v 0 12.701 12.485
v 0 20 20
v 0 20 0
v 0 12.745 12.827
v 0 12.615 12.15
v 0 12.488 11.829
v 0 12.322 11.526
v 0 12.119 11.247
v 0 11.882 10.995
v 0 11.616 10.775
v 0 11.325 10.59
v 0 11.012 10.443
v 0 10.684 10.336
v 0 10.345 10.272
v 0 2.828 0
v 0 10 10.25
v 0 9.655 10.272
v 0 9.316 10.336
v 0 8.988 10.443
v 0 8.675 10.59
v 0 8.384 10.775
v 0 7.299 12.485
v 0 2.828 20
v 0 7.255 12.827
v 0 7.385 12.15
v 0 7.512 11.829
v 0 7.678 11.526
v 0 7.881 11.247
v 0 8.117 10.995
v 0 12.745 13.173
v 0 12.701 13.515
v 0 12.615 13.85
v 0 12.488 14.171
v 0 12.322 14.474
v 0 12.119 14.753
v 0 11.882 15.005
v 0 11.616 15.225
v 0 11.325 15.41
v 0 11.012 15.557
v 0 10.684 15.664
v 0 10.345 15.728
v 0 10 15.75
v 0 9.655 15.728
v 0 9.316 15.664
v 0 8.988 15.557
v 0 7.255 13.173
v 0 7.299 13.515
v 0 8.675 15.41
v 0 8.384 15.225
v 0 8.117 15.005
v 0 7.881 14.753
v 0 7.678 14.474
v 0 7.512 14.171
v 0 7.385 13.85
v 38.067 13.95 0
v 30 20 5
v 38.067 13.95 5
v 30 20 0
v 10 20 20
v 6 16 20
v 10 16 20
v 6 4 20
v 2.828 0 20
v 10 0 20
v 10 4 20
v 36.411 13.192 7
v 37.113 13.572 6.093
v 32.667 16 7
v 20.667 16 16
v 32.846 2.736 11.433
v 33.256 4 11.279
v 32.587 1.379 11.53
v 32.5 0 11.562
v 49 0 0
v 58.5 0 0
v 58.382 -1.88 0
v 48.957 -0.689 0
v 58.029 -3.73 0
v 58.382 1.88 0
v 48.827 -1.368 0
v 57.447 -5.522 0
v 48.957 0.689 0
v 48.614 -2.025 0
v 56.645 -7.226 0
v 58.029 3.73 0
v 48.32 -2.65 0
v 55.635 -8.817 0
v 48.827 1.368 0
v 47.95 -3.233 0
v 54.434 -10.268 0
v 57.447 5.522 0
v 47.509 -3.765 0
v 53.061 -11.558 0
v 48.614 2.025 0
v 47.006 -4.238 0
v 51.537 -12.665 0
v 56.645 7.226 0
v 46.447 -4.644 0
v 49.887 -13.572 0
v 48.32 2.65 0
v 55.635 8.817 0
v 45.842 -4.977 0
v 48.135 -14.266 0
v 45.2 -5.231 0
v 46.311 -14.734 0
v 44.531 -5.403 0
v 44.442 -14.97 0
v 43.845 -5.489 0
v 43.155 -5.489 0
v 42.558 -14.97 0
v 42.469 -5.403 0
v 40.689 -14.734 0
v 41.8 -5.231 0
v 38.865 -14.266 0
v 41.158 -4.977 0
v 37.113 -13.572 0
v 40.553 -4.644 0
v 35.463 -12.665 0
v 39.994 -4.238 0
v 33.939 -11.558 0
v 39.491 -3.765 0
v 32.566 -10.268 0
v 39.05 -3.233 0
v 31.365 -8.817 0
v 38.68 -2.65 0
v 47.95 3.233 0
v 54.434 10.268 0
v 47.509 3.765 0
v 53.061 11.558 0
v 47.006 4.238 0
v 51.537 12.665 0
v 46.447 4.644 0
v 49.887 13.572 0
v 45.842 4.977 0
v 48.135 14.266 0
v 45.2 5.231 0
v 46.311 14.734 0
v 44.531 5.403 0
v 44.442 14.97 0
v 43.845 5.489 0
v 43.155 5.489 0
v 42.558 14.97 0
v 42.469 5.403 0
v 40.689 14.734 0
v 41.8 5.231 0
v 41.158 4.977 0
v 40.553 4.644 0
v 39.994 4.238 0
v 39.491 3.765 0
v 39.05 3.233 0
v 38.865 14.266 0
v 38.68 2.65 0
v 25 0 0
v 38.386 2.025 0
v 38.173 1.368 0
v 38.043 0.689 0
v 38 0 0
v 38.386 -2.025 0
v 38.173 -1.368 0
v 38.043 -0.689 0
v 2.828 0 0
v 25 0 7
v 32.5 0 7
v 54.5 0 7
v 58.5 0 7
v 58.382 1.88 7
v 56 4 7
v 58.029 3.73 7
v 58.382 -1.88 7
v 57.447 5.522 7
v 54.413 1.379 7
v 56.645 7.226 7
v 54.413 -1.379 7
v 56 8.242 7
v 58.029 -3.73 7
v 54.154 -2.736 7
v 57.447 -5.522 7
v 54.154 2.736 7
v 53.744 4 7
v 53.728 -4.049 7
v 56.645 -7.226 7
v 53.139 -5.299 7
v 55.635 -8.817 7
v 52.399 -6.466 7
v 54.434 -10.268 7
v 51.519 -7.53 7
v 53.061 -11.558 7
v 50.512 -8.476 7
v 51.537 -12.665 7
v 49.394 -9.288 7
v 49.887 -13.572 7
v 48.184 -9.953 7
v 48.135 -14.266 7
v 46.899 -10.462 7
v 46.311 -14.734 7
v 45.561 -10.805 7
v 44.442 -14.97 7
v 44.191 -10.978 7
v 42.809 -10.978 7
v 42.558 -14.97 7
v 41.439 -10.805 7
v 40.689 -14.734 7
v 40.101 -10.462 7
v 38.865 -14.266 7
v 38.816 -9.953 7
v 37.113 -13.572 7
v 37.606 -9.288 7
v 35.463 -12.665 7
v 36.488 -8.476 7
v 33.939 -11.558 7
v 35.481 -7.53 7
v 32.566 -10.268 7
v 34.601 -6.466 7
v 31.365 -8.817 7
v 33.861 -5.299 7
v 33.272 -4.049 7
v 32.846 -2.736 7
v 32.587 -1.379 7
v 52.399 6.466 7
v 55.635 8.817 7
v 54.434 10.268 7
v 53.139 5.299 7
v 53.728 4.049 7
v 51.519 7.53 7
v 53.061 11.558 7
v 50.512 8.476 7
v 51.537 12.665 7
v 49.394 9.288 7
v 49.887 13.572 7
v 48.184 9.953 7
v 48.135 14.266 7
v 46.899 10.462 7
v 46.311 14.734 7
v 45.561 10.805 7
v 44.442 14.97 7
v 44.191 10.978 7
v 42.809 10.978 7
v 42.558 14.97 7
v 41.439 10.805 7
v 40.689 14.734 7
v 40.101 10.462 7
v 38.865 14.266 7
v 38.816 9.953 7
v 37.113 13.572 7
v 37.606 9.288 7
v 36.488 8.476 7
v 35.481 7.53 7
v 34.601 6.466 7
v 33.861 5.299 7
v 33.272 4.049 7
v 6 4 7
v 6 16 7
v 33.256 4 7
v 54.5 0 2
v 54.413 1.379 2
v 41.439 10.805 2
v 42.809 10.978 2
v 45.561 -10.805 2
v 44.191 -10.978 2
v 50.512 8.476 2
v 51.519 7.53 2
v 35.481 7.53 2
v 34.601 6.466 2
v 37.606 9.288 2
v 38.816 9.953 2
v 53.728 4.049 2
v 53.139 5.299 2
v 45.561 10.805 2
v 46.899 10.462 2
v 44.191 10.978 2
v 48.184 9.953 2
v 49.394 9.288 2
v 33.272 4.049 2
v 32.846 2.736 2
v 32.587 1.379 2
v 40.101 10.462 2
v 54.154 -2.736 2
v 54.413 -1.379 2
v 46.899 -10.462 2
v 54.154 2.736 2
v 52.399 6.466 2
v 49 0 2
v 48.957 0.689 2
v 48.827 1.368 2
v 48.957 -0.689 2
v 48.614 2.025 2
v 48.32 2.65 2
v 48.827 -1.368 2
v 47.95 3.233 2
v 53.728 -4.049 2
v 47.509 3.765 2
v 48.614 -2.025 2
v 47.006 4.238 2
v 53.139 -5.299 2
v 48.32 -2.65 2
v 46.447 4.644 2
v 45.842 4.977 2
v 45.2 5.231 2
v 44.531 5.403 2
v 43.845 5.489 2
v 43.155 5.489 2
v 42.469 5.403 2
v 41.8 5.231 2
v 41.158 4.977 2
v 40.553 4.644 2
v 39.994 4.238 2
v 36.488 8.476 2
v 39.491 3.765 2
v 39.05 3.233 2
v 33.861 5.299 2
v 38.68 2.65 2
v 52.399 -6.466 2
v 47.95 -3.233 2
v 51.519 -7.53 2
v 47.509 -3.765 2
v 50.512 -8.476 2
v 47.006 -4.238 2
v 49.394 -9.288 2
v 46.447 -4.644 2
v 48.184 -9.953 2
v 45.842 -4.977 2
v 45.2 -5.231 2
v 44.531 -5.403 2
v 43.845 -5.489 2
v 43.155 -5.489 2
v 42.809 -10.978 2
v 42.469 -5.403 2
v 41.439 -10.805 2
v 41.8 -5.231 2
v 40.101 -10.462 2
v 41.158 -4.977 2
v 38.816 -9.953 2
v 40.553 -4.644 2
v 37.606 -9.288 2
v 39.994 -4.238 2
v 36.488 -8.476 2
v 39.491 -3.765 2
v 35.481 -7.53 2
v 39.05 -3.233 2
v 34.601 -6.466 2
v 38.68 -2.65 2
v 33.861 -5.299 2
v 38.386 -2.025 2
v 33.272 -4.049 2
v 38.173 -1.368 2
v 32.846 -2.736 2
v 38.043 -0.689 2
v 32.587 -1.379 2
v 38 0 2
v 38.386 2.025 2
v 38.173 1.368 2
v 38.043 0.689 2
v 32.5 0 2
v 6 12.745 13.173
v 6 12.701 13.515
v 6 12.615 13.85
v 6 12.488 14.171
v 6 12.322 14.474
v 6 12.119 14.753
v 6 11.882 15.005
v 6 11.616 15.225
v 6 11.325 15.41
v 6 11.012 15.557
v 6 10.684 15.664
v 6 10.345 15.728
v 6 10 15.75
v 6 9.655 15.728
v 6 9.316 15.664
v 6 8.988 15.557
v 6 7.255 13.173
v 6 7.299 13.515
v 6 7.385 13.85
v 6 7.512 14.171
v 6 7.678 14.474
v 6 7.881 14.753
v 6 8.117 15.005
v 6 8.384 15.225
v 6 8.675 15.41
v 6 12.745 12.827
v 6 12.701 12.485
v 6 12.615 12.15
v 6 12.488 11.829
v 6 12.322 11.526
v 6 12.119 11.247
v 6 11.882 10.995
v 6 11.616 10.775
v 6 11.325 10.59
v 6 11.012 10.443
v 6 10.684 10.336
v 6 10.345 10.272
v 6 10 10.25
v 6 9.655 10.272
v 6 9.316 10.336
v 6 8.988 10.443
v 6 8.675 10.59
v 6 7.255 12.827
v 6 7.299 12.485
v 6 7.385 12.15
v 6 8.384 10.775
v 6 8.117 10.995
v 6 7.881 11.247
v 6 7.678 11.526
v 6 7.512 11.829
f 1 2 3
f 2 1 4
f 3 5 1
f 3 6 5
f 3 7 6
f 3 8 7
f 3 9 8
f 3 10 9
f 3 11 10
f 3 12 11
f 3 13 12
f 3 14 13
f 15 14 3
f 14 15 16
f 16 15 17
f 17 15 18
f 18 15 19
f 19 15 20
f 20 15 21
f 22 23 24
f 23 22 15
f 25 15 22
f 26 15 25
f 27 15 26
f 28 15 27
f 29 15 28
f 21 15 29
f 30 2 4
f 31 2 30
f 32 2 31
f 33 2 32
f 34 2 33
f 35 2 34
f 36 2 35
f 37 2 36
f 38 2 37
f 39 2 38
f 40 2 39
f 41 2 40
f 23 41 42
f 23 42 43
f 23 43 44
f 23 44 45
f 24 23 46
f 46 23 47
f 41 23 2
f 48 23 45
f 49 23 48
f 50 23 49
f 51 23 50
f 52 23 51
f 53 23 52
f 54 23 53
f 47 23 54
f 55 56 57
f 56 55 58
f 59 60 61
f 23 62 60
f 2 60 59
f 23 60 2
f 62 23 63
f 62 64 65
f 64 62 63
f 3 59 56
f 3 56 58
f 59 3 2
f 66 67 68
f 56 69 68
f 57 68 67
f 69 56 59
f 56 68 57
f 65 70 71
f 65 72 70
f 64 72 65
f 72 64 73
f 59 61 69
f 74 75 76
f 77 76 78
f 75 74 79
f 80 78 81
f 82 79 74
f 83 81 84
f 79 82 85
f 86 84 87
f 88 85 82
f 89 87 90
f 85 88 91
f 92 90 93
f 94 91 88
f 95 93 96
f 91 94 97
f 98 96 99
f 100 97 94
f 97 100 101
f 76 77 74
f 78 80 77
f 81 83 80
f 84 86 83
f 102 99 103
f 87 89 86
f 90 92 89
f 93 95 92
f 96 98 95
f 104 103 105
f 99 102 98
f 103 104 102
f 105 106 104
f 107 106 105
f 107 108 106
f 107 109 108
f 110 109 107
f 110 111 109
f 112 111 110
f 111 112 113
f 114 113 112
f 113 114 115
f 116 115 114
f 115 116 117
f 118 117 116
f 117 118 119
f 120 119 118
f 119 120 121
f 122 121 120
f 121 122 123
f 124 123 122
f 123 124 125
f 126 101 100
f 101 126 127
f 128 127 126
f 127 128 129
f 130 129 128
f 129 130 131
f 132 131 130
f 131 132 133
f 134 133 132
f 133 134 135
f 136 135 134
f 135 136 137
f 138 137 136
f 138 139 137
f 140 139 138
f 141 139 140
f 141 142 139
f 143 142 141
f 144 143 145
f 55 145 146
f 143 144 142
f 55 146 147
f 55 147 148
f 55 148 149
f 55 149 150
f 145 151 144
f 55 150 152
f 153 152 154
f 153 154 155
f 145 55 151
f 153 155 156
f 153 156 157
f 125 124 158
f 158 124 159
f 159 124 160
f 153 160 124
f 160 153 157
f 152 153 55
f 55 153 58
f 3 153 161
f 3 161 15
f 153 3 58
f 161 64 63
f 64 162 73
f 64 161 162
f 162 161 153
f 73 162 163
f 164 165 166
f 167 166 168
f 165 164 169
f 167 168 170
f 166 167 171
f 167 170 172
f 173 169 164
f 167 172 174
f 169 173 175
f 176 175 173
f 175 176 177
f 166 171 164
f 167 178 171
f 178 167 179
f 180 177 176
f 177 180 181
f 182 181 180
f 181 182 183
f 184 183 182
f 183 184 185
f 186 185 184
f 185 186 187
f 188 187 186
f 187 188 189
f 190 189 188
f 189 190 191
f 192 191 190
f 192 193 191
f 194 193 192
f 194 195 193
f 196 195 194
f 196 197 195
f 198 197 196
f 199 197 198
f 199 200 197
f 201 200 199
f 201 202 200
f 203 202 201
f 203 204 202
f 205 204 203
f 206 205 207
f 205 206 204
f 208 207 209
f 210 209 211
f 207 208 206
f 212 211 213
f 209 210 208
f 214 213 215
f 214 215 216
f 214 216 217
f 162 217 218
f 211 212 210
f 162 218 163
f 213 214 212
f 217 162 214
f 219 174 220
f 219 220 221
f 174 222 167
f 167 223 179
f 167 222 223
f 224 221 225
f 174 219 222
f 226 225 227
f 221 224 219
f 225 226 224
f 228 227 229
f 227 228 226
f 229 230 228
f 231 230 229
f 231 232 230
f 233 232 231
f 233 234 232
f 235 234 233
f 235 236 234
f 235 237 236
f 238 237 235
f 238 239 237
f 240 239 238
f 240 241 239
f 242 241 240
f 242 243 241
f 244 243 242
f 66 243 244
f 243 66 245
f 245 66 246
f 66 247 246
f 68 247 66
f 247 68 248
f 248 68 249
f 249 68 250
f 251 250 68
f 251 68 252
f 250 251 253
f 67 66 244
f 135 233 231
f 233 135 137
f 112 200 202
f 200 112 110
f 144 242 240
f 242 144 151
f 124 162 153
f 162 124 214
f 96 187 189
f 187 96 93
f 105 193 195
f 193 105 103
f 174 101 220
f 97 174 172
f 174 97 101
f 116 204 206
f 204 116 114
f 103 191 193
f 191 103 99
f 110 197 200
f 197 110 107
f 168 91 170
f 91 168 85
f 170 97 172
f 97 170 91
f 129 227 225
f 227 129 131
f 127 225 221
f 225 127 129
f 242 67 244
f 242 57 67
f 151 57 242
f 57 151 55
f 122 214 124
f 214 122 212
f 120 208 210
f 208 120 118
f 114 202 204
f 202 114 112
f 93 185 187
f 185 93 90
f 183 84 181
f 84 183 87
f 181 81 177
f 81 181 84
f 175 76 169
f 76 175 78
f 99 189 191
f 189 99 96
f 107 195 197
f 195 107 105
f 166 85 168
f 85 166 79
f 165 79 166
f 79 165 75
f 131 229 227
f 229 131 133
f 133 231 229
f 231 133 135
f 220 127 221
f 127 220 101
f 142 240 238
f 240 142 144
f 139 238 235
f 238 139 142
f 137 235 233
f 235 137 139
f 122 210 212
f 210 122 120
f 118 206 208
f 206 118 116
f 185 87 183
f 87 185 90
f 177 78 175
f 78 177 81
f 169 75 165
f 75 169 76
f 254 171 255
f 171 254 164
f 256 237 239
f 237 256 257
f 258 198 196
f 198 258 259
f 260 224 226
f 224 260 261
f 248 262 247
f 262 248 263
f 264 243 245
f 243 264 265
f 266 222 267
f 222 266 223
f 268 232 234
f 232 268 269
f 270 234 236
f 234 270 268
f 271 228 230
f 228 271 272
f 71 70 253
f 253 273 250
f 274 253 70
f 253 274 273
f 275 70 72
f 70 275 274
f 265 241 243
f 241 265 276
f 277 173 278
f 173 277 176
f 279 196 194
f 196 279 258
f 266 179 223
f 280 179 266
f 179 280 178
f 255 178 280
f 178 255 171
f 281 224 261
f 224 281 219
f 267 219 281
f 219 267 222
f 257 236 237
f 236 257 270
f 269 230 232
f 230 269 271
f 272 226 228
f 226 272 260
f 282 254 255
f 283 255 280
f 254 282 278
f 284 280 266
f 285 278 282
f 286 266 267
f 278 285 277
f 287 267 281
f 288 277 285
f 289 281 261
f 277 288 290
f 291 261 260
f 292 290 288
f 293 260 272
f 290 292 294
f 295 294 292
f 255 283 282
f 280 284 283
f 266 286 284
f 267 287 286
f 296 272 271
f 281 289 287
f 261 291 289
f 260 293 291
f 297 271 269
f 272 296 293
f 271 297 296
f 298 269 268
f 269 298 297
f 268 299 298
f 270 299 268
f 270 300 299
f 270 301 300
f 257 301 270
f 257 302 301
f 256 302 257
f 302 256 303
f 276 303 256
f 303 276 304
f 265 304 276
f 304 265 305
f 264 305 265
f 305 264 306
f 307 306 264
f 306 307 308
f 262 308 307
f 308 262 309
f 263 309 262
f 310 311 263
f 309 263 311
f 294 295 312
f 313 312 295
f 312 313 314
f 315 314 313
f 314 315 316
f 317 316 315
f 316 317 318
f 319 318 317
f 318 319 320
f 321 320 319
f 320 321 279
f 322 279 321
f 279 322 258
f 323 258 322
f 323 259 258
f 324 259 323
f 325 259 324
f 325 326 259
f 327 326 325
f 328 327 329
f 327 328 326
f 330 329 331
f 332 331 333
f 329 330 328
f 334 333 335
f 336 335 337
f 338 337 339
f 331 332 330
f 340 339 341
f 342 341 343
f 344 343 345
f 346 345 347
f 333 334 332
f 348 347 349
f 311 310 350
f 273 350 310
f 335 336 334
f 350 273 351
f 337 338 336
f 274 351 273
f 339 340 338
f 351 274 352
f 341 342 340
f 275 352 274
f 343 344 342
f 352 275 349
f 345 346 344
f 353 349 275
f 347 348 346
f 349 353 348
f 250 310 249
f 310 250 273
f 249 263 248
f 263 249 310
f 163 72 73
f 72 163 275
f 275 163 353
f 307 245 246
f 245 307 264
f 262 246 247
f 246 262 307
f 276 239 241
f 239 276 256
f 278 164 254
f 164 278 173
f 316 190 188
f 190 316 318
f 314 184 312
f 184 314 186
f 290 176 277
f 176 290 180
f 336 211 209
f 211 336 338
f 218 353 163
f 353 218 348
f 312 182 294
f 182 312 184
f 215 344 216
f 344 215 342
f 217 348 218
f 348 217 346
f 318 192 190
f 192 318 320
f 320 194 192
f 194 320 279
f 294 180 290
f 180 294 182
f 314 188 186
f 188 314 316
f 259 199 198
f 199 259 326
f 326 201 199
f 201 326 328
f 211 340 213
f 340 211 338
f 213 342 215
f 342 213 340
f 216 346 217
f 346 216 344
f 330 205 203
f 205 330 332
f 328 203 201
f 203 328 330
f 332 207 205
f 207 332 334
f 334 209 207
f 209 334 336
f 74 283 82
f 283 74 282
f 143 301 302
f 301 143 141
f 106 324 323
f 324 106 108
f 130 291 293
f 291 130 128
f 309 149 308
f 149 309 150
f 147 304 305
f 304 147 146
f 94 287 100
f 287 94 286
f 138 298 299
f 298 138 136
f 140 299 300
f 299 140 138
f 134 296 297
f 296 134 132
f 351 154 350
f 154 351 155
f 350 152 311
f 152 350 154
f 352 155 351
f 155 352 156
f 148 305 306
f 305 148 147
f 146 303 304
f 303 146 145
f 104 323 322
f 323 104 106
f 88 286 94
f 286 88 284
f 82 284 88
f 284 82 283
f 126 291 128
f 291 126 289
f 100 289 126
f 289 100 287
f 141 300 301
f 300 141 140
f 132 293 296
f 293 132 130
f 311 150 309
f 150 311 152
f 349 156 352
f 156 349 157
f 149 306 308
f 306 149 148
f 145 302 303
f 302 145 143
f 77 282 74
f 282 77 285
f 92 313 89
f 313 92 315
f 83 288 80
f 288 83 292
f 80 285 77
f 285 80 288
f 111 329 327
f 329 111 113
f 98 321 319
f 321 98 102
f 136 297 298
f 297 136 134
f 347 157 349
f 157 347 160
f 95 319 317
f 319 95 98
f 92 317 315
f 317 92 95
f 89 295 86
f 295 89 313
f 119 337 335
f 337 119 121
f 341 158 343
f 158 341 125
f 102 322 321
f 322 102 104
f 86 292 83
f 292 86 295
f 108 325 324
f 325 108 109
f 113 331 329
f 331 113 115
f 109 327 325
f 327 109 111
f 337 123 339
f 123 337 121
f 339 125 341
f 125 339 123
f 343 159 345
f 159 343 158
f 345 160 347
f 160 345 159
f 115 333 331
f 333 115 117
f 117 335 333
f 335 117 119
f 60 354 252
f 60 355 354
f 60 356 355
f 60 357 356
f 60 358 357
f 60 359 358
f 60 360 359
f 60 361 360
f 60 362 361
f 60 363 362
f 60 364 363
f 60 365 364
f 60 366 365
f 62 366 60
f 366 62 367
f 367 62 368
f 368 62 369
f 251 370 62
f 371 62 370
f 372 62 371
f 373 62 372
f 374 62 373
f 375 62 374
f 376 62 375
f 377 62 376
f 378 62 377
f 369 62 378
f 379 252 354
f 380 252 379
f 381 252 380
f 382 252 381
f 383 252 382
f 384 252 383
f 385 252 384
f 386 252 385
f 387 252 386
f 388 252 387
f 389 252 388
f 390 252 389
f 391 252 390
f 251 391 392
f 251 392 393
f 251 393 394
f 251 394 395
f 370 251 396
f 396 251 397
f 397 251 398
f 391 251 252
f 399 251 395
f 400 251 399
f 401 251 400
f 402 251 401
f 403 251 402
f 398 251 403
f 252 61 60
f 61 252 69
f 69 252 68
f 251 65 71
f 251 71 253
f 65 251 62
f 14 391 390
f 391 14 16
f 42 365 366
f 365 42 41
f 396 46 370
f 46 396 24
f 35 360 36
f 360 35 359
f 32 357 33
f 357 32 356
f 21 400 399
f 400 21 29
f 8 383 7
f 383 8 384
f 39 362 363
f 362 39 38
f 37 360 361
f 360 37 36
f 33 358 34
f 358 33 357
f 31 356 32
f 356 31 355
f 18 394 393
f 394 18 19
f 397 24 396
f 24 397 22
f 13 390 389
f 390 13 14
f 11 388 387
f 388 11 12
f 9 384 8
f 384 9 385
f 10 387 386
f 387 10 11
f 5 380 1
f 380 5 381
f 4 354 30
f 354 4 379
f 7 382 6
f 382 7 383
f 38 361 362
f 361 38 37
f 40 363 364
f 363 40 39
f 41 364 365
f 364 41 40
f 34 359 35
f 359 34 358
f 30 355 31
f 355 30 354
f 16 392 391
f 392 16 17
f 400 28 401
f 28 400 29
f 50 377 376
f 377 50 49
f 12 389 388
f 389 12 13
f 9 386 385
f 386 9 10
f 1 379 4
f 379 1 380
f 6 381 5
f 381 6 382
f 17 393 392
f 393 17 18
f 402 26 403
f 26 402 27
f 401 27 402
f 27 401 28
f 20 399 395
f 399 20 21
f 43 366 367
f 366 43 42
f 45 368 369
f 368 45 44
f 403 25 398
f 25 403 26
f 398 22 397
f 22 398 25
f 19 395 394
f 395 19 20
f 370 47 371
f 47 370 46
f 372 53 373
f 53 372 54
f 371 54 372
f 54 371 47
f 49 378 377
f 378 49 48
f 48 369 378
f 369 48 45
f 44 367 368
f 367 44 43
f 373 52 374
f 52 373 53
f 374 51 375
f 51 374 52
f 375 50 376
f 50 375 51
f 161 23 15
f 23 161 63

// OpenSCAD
$fn = 50;

x = 43.5;
y = 0;

difference(){
    union(){
        hull(){
            cube([10,20,20]);
            cube([30,20,5]);
            cube([50,5,5]);
        }



        hull(){
            translate([25,0,0])
                cube([7,7,7]);
            translate([x,-y,0]){
                cylinder(7,15,15);
            }
        }
    }

    union(){
        translate([x,-y,0]){
            translate([0,0,2])
                cylinder(15,11,11);
        }
        
        translate([x,-y,0]){
            translate([0,0,0])
                cylinder(15,5.5,5.5);
        }

        translate([6,4,7])
                cube([50,12,20]);
        d=5.5;
        translate([-1,10,13])
            rotate([0,90,0])
                cylinder(50,d/2,d/2);
        rotate([0,0,45])   
            cube([4,4,50], true);
    }
}
